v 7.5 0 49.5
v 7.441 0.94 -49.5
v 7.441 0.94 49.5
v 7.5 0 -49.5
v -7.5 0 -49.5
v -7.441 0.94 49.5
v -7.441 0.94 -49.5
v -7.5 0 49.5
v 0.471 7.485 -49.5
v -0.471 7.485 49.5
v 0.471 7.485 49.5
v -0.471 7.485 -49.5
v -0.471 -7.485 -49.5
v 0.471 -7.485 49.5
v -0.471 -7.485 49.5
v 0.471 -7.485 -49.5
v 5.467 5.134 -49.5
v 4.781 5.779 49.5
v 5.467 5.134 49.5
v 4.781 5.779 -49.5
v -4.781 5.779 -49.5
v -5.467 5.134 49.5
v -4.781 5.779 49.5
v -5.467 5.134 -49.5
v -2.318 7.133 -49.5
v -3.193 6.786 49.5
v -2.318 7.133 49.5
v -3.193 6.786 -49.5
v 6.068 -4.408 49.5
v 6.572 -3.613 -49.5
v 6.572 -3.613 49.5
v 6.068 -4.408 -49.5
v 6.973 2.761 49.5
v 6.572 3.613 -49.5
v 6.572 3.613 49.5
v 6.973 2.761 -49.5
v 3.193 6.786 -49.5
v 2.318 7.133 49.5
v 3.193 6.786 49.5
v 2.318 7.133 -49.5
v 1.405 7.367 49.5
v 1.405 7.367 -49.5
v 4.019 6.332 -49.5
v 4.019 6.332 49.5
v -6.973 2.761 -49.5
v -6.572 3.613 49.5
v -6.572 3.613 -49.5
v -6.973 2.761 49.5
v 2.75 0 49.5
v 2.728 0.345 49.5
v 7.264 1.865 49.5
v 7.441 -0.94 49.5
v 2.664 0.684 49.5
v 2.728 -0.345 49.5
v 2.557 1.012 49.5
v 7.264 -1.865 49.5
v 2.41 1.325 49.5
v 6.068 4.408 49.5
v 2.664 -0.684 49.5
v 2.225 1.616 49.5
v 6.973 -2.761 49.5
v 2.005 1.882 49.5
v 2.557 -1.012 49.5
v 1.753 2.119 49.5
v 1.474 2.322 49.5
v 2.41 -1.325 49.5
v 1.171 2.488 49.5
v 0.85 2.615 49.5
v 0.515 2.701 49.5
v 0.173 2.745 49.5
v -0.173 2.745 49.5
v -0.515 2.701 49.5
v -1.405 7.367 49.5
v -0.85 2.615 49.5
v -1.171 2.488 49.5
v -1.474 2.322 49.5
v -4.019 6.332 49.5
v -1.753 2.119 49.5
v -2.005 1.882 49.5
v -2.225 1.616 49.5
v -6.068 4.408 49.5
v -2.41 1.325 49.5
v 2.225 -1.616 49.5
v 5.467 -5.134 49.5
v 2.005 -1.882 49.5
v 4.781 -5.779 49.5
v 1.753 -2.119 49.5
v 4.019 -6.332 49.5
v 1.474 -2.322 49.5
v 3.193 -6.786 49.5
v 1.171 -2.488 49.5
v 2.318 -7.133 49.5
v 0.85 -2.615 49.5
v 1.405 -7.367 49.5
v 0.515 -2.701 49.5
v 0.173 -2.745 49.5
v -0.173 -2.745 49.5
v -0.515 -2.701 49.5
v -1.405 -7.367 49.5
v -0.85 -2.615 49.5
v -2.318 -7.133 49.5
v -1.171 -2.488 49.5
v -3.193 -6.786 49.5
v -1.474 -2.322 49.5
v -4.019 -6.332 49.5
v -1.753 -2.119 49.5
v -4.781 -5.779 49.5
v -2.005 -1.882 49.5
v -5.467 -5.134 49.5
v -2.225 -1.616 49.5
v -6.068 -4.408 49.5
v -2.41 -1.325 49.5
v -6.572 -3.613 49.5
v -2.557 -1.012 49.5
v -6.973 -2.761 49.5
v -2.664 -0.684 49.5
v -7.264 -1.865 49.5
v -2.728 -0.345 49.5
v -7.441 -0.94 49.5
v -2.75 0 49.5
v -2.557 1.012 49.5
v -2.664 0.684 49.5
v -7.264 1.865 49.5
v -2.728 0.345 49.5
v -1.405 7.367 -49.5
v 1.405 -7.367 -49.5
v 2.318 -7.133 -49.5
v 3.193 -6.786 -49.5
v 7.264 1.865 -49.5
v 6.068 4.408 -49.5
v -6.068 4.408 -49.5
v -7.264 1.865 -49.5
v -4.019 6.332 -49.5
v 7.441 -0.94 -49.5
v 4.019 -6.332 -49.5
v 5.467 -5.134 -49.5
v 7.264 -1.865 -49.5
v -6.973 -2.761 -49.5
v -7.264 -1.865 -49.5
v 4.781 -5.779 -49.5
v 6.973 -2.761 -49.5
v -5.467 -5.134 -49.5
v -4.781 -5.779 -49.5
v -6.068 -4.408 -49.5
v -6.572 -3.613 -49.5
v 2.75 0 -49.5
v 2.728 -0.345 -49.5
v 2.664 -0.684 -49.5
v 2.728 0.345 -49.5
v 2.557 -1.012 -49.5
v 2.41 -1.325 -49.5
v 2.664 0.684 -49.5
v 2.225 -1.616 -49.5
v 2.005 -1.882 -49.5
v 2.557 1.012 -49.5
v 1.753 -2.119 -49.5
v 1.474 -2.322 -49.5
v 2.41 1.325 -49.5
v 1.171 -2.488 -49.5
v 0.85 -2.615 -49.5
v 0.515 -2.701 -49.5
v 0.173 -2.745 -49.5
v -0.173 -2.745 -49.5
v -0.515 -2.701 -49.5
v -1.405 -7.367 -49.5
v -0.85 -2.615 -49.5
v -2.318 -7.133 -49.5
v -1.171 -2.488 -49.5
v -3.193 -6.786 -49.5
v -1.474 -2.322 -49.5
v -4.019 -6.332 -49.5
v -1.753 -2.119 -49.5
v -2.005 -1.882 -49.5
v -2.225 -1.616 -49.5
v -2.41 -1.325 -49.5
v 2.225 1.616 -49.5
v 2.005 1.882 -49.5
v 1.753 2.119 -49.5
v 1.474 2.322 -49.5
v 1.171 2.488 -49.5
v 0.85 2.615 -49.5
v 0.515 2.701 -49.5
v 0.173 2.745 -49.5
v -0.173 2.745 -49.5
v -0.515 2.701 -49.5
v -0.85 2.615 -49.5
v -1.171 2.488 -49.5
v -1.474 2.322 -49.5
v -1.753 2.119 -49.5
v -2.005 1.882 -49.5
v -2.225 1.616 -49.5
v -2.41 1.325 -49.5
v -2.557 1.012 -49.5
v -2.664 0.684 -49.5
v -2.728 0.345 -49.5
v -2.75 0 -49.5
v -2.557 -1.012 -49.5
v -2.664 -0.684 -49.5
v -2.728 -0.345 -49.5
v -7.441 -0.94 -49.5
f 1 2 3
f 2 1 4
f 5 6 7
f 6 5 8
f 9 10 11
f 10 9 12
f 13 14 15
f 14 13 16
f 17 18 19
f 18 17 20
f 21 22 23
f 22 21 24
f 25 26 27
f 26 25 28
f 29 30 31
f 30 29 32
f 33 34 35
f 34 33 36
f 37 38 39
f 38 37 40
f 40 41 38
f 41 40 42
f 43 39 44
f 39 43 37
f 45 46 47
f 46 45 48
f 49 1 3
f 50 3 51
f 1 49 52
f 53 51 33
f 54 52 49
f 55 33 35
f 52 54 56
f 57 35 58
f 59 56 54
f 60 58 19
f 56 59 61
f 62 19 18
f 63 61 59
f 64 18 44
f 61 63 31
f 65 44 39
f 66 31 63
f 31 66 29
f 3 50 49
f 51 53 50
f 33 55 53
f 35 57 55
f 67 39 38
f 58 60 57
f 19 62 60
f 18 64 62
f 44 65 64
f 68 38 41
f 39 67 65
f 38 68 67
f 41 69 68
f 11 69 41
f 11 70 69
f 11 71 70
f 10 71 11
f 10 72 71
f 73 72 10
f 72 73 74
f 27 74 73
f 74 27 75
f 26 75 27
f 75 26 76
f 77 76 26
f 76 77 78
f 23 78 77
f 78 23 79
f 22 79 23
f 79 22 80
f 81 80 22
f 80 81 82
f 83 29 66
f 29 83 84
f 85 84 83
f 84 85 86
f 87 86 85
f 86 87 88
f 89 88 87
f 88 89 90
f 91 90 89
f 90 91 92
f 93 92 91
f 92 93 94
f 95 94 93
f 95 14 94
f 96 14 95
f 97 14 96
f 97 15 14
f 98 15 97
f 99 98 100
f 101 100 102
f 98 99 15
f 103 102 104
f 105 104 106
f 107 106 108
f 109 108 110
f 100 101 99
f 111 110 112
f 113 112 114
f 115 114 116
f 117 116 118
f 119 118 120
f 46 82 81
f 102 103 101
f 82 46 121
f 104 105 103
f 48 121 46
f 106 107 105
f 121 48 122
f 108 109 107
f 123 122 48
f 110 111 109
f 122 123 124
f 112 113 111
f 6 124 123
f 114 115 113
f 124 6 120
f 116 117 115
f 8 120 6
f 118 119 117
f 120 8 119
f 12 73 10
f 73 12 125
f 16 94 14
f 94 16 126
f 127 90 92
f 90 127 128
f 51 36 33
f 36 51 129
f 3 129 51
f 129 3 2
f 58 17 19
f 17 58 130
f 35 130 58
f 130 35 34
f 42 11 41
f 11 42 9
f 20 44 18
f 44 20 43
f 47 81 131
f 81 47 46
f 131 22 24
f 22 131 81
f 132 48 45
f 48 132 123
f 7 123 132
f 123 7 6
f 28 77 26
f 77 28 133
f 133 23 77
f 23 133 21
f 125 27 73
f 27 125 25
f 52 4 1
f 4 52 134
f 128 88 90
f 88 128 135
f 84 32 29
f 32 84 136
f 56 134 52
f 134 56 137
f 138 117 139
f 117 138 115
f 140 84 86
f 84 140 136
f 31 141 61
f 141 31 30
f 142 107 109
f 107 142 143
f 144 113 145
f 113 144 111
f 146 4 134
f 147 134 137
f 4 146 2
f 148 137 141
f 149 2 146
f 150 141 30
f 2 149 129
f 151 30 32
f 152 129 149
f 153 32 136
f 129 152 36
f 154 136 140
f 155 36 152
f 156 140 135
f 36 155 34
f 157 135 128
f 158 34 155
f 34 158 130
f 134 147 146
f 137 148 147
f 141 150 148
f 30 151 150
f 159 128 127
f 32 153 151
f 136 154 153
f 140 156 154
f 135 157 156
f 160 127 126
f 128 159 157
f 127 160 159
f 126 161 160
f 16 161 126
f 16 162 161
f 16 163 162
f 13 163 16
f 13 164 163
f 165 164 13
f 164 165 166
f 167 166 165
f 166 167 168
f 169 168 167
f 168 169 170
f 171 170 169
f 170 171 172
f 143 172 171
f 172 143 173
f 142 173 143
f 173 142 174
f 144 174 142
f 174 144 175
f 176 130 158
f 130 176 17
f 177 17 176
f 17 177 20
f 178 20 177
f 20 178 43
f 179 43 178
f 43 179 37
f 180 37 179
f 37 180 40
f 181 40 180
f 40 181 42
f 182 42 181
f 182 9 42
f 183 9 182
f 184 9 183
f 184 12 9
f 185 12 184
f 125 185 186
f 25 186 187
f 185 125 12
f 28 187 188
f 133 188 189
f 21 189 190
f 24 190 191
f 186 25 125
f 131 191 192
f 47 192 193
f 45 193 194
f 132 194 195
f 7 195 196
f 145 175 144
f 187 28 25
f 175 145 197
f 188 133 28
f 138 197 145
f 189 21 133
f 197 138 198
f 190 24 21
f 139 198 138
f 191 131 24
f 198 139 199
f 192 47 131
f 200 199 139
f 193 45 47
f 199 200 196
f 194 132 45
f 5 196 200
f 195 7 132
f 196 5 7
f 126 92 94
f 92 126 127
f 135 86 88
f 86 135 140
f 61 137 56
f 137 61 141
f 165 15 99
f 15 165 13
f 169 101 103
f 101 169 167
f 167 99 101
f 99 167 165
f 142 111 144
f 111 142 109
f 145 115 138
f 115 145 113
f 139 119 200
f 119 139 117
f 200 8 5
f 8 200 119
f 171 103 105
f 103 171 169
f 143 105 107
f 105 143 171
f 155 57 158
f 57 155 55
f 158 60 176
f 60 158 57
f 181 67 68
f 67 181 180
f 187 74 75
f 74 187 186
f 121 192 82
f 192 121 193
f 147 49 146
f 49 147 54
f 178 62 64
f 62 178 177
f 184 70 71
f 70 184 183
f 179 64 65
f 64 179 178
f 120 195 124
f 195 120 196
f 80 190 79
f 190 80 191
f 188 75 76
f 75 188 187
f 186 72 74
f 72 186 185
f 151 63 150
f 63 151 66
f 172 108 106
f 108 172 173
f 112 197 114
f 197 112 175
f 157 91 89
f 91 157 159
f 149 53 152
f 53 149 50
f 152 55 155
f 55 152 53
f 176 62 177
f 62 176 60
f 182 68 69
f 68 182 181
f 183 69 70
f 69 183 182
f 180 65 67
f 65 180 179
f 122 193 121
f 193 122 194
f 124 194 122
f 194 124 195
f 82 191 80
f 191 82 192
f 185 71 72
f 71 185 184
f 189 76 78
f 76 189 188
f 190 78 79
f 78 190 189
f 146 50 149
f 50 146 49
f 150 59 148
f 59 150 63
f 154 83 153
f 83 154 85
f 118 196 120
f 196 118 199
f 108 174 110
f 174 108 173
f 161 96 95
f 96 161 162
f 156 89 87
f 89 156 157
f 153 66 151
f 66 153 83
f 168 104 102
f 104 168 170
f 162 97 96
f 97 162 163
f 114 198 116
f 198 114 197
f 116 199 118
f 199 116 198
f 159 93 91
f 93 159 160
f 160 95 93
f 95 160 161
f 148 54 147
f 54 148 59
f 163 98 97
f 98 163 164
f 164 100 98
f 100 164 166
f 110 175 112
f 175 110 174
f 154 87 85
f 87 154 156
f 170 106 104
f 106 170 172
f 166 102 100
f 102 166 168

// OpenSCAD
$fn = 50;


difference() {
	union() {
		translate(v = [0, 0, -49.5000000000]) {
			cylinder(h = 99, r = 7.5000000000);
		}
	}
	union() {
		translate(v = [0, 0, -100.0000000000]) {
			cylinder(h = 200, r = 2.7500000000);
		}
	}
}
